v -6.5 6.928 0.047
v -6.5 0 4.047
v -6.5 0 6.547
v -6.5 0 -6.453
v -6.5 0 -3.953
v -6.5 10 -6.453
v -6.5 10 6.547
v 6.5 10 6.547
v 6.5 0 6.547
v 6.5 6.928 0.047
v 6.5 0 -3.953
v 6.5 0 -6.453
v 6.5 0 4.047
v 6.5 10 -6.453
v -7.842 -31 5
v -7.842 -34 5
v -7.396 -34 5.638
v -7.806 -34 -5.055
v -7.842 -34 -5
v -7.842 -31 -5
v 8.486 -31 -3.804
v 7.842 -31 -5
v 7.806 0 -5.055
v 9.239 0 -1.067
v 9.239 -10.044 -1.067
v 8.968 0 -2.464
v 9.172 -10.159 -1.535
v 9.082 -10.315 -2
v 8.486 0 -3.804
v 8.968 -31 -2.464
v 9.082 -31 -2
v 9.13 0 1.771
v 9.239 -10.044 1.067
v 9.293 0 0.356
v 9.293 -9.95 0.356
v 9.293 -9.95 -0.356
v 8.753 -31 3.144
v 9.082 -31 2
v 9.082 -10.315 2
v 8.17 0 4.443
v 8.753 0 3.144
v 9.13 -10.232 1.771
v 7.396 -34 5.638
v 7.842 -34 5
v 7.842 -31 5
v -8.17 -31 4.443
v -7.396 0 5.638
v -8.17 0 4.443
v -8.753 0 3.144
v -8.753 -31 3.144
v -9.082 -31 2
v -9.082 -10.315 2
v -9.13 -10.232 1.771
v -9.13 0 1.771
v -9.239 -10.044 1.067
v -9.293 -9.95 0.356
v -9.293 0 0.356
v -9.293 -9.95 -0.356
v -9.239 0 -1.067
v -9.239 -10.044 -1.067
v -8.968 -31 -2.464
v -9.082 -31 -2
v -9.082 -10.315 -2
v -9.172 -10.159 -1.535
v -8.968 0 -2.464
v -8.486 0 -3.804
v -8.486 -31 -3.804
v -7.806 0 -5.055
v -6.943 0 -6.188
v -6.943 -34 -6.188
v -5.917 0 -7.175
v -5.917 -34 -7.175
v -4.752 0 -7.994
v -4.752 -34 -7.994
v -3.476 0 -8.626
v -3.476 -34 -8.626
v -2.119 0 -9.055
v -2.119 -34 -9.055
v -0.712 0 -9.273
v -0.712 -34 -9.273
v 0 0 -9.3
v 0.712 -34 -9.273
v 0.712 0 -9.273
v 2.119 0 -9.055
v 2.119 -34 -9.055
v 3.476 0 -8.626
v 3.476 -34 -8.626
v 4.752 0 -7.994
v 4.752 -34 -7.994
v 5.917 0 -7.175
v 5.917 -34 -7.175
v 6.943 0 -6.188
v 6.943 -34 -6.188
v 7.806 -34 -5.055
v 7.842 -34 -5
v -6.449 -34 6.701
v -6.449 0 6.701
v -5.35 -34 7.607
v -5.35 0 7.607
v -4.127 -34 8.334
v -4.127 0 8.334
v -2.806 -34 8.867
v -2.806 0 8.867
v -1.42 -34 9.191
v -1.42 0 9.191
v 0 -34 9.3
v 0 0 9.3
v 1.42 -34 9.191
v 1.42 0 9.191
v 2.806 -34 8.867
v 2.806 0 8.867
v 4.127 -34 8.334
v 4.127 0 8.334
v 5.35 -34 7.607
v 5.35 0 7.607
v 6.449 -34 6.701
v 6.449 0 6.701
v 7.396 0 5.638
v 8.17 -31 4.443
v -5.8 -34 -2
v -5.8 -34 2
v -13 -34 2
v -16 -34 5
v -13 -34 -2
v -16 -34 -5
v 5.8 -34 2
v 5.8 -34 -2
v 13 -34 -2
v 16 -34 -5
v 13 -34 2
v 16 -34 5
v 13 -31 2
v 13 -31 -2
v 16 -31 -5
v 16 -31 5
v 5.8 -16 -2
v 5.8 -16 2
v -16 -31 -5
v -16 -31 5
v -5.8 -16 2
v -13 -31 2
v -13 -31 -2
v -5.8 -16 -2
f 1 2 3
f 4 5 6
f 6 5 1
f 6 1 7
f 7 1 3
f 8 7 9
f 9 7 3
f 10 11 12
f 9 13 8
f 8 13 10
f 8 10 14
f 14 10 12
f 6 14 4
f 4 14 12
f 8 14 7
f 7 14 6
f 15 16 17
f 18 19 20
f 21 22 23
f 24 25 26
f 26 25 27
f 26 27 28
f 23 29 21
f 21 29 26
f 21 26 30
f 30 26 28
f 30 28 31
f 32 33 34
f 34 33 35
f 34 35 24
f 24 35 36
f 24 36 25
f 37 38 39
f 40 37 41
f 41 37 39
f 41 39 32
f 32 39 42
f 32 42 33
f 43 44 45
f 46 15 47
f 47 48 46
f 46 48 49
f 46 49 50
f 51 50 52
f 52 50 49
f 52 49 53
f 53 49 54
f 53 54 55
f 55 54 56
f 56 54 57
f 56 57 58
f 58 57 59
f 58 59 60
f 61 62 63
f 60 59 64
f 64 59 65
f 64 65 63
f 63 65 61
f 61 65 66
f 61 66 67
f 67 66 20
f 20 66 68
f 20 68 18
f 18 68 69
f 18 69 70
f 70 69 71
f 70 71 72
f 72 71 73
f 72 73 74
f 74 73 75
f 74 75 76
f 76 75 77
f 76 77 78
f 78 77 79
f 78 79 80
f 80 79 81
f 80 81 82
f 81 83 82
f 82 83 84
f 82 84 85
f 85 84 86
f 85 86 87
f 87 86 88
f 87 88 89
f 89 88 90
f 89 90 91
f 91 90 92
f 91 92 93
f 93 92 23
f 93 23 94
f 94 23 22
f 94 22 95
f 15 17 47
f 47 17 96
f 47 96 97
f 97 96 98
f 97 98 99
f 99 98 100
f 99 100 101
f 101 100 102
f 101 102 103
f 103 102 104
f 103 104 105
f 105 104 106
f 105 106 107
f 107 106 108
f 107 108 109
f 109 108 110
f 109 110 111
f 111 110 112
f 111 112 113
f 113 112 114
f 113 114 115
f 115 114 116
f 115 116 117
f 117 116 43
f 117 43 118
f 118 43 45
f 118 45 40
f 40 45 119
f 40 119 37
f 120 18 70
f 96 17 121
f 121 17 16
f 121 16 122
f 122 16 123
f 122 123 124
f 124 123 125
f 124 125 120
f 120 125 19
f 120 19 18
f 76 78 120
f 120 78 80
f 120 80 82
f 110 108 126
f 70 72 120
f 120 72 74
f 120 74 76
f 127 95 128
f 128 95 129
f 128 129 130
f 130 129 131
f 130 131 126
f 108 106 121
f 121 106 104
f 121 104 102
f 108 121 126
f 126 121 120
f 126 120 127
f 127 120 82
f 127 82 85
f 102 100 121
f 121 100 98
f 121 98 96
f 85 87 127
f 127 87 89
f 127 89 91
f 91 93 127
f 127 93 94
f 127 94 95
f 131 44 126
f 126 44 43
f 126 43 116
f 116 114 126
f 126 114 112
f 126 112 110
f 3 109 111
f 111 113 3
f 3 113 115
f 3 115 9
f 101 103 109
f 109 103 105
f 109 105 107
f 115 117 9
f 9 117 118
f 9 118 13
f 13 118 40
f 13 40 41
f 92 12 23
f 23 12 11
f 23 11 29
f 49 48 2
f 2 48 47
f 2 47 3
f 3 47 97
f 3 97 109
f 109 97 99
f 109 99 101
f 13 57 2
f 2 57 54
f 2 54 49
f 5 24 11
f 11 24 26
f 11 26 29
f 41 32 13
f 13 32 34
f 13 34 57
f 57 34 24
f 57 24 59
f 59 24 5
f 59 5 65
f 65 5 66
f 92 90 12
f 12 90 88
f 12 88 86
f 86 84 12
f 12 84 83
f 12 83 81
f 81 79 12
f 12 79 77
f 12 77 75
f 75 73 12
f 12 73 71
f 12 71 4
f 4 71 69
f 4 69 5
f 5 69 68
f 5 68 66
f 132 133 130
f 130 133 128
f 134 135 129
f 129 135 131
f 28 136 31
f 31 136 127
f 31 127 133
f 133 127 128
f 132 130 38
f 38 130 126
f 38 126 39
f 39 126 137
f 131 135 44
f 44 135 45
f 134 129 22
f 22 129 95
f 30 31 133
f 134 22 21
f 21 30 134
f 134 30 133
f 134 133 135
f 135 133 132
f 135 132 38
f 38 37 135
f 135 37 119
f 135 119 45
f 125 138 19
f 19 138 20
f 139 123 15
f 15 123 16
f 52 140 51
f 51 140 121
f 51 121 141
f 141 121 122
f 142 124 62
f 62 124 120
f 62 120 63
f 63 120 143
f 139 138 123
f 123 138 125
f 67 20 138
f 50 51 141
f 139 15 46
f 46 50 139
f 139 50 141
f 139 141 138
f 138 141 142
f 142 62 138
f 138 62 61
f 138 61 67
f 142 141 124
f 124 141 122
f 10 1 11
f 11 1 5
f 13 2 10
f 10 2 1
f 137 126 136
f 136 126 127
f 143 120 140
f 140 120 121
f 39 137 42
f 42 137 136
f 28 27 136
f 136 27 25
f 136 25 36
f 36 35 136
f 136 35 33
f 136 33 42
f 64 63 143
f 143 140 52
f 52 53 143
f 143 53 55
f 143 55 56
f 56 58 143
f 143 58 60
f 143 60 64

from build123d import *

# Parameters (mm, degrees)
SKETCH1_W               = 13
SKETCH1_H               = 13
BOSS_EXTRUDE1_DEPTH     = 10
SKETCH2_R               = 9.3
BOSS_EXTRUDE2_DEPTH     = 34
SKETCH3_W               = 32
SKETCH3_H               = 10
SKETCH3_W_2             = 7.2
SKETCH3_H_2             = 4
BOSS_EXTRUDE3_DEPTH     = 3
CUT_EXTRUDE1_DEPTH      = 42.817938734
CUT_EXTRUDE1_DEPTH_BACK = 42.817938734
SKETCH5_W               = 7.2
SKETCH5_H               = 4
CUT_EXTRUDE2_DEPTH      = 25
CHAMFER1_SIZE           = 7
CHAMFER1_SIZE_2         = 4.041451884


with BuildPart() as part:
    # Sketch1 → Boss-Extrude1 (new body)
    with BuildSketch(Plane(origin=(0, 0, 0), x_dir=(1, 0, 0), z_dir=(0, 1, 0))):
        with Locations((0, -0.046937875)):
            Rectangle(SKETCH1_W, SKETCH1_H)
    extrude(amount=BOSS_EXTRUDE1_DEPTH)

    # Sketch2 → Boss-Extrude2 (add)
    with BuildSketch(Plane.XZ):
        with Locations(Location((0, 0, 0), (0, 0, 270))):
            Circle(SKETCH2_R)
    extrude(amount=BOSS_EXTRUDE2_DEPTH)

    # Sketch3 → Boss-Extrude3 (add)
    with BuildSketch(Plane.XZ.offset(34)):
        Rectangle(SKETCH3_W, SKETCH3_H)
        with Locations((-9.4, 0)):
            Rectangle(SKETCH3_W_2, SKETCH3_H_2, mode=Mode.SUBTRACT)
        with Locations((9.4, 0)):
            Rectangle(SKETCH3_W_2, SKETCH3_H_2, mode=Mode.SUBTRACT)
    extrude(amount=-BOSS_EXTRUDE3_DEPTH)

    # Sketch4 → Cut-Extrude1 (cut, two sides: drawn at the far end of the back side and taken through both)
    with BuildSketch(Plane.ZY.offset(6.5).offset(-CUT_EXTRUDE1_DEPTH_BACK)):
        Polygon((-3.953062125, 0), (4.046937875, 0), (0.046937875, 6.92820323), align=None)
    extrude(amount=CUT_EXTRUDE1_DEPTH + CUT_EXTRUDE1_DEPTH_BACK, mode=Mode.SUBTRACT)

    # Sketch5 → Cut-Extrude2 (cut)
    with BuildSketch(Plane.XZ.offset(34)):
        with Locations((-9.4, 0)):
            Rectangle(SKETCH5_W, SKETCH5_H)
        with Locations((9.4, 0)):
            Rectangle(SKETCH5_W, SKETCH5_H)
    extrude(amount=-CUT_EXTRUDE2_DEPTH, mode=Mode.SUBTRACT)

    # Chamfer1
    # the kernel refuses this chamfer: 7, 4.041451884 mm, written as the material it adds along each edge
    with BuildSketch(Plane(origin=(-5.8, -9, -20.109600283), x_dir=(0.01932676561270078, -0.9998132206222078, 0), z_dir=(0, 0, 1))) as chamfer1_piece_1_section:
        Polygon((CHAMFER1_SIZE * 0.999813220622, -CHAMFER1_SIZE * 0.0193267656127), (-CHAMFER1_SIZE_2 * 0.0193267656143, -CHAMFER1_SIZE_2 * 0.999813220703), (0, 0), align=None)
    chamfer1_piece_1 = extrude(amount=40.219200565, mode=Mode.PRIVATE)
    chamfer1_piece_1 = chamfer1_piece_1 & Plane(origin=(0, -11.718976522, 0), x_dir=(0, 0, -1), z_dir=(0, 1, 0)) * Cylinder(9.3, 109, mode=Mode.PRIVATE)
    add(chamfer1_piece_1)
    with BuildSketch(Plane(origin=(5.8, -9, 20.109600283), x_dir=(-0.01932676561270078, -0.9998132206222078, 0), z_dir=(0, 0, -1))) as chamfer1_piece_2_section:
        Polygon((CHAMFER1_SIZE * 0.999813220622, -CHAMFER1_SIZE * 0.0193267656127), (-CHAMFER1_SIZE_2 * 0.0193267656143, -CHAMFER1_SIZE_2 * 0.999813220703), (0, 0), align=None)
    chamfer1_piece_2 = extrude(amount=40.219200565, mode=Mode.PRIVATE)
    chamfer1_piece_2 = chamfer1_piece_2 & Plane(origin=(0, -11.718976523, 0), x_dir=(0, 0, -1), z_dir=(0, 1, 0)) * Cylinder(9.3, 109, mode=Mode.PRIVATE)
    add(chamfer1_piece_2)


solid = part.part
